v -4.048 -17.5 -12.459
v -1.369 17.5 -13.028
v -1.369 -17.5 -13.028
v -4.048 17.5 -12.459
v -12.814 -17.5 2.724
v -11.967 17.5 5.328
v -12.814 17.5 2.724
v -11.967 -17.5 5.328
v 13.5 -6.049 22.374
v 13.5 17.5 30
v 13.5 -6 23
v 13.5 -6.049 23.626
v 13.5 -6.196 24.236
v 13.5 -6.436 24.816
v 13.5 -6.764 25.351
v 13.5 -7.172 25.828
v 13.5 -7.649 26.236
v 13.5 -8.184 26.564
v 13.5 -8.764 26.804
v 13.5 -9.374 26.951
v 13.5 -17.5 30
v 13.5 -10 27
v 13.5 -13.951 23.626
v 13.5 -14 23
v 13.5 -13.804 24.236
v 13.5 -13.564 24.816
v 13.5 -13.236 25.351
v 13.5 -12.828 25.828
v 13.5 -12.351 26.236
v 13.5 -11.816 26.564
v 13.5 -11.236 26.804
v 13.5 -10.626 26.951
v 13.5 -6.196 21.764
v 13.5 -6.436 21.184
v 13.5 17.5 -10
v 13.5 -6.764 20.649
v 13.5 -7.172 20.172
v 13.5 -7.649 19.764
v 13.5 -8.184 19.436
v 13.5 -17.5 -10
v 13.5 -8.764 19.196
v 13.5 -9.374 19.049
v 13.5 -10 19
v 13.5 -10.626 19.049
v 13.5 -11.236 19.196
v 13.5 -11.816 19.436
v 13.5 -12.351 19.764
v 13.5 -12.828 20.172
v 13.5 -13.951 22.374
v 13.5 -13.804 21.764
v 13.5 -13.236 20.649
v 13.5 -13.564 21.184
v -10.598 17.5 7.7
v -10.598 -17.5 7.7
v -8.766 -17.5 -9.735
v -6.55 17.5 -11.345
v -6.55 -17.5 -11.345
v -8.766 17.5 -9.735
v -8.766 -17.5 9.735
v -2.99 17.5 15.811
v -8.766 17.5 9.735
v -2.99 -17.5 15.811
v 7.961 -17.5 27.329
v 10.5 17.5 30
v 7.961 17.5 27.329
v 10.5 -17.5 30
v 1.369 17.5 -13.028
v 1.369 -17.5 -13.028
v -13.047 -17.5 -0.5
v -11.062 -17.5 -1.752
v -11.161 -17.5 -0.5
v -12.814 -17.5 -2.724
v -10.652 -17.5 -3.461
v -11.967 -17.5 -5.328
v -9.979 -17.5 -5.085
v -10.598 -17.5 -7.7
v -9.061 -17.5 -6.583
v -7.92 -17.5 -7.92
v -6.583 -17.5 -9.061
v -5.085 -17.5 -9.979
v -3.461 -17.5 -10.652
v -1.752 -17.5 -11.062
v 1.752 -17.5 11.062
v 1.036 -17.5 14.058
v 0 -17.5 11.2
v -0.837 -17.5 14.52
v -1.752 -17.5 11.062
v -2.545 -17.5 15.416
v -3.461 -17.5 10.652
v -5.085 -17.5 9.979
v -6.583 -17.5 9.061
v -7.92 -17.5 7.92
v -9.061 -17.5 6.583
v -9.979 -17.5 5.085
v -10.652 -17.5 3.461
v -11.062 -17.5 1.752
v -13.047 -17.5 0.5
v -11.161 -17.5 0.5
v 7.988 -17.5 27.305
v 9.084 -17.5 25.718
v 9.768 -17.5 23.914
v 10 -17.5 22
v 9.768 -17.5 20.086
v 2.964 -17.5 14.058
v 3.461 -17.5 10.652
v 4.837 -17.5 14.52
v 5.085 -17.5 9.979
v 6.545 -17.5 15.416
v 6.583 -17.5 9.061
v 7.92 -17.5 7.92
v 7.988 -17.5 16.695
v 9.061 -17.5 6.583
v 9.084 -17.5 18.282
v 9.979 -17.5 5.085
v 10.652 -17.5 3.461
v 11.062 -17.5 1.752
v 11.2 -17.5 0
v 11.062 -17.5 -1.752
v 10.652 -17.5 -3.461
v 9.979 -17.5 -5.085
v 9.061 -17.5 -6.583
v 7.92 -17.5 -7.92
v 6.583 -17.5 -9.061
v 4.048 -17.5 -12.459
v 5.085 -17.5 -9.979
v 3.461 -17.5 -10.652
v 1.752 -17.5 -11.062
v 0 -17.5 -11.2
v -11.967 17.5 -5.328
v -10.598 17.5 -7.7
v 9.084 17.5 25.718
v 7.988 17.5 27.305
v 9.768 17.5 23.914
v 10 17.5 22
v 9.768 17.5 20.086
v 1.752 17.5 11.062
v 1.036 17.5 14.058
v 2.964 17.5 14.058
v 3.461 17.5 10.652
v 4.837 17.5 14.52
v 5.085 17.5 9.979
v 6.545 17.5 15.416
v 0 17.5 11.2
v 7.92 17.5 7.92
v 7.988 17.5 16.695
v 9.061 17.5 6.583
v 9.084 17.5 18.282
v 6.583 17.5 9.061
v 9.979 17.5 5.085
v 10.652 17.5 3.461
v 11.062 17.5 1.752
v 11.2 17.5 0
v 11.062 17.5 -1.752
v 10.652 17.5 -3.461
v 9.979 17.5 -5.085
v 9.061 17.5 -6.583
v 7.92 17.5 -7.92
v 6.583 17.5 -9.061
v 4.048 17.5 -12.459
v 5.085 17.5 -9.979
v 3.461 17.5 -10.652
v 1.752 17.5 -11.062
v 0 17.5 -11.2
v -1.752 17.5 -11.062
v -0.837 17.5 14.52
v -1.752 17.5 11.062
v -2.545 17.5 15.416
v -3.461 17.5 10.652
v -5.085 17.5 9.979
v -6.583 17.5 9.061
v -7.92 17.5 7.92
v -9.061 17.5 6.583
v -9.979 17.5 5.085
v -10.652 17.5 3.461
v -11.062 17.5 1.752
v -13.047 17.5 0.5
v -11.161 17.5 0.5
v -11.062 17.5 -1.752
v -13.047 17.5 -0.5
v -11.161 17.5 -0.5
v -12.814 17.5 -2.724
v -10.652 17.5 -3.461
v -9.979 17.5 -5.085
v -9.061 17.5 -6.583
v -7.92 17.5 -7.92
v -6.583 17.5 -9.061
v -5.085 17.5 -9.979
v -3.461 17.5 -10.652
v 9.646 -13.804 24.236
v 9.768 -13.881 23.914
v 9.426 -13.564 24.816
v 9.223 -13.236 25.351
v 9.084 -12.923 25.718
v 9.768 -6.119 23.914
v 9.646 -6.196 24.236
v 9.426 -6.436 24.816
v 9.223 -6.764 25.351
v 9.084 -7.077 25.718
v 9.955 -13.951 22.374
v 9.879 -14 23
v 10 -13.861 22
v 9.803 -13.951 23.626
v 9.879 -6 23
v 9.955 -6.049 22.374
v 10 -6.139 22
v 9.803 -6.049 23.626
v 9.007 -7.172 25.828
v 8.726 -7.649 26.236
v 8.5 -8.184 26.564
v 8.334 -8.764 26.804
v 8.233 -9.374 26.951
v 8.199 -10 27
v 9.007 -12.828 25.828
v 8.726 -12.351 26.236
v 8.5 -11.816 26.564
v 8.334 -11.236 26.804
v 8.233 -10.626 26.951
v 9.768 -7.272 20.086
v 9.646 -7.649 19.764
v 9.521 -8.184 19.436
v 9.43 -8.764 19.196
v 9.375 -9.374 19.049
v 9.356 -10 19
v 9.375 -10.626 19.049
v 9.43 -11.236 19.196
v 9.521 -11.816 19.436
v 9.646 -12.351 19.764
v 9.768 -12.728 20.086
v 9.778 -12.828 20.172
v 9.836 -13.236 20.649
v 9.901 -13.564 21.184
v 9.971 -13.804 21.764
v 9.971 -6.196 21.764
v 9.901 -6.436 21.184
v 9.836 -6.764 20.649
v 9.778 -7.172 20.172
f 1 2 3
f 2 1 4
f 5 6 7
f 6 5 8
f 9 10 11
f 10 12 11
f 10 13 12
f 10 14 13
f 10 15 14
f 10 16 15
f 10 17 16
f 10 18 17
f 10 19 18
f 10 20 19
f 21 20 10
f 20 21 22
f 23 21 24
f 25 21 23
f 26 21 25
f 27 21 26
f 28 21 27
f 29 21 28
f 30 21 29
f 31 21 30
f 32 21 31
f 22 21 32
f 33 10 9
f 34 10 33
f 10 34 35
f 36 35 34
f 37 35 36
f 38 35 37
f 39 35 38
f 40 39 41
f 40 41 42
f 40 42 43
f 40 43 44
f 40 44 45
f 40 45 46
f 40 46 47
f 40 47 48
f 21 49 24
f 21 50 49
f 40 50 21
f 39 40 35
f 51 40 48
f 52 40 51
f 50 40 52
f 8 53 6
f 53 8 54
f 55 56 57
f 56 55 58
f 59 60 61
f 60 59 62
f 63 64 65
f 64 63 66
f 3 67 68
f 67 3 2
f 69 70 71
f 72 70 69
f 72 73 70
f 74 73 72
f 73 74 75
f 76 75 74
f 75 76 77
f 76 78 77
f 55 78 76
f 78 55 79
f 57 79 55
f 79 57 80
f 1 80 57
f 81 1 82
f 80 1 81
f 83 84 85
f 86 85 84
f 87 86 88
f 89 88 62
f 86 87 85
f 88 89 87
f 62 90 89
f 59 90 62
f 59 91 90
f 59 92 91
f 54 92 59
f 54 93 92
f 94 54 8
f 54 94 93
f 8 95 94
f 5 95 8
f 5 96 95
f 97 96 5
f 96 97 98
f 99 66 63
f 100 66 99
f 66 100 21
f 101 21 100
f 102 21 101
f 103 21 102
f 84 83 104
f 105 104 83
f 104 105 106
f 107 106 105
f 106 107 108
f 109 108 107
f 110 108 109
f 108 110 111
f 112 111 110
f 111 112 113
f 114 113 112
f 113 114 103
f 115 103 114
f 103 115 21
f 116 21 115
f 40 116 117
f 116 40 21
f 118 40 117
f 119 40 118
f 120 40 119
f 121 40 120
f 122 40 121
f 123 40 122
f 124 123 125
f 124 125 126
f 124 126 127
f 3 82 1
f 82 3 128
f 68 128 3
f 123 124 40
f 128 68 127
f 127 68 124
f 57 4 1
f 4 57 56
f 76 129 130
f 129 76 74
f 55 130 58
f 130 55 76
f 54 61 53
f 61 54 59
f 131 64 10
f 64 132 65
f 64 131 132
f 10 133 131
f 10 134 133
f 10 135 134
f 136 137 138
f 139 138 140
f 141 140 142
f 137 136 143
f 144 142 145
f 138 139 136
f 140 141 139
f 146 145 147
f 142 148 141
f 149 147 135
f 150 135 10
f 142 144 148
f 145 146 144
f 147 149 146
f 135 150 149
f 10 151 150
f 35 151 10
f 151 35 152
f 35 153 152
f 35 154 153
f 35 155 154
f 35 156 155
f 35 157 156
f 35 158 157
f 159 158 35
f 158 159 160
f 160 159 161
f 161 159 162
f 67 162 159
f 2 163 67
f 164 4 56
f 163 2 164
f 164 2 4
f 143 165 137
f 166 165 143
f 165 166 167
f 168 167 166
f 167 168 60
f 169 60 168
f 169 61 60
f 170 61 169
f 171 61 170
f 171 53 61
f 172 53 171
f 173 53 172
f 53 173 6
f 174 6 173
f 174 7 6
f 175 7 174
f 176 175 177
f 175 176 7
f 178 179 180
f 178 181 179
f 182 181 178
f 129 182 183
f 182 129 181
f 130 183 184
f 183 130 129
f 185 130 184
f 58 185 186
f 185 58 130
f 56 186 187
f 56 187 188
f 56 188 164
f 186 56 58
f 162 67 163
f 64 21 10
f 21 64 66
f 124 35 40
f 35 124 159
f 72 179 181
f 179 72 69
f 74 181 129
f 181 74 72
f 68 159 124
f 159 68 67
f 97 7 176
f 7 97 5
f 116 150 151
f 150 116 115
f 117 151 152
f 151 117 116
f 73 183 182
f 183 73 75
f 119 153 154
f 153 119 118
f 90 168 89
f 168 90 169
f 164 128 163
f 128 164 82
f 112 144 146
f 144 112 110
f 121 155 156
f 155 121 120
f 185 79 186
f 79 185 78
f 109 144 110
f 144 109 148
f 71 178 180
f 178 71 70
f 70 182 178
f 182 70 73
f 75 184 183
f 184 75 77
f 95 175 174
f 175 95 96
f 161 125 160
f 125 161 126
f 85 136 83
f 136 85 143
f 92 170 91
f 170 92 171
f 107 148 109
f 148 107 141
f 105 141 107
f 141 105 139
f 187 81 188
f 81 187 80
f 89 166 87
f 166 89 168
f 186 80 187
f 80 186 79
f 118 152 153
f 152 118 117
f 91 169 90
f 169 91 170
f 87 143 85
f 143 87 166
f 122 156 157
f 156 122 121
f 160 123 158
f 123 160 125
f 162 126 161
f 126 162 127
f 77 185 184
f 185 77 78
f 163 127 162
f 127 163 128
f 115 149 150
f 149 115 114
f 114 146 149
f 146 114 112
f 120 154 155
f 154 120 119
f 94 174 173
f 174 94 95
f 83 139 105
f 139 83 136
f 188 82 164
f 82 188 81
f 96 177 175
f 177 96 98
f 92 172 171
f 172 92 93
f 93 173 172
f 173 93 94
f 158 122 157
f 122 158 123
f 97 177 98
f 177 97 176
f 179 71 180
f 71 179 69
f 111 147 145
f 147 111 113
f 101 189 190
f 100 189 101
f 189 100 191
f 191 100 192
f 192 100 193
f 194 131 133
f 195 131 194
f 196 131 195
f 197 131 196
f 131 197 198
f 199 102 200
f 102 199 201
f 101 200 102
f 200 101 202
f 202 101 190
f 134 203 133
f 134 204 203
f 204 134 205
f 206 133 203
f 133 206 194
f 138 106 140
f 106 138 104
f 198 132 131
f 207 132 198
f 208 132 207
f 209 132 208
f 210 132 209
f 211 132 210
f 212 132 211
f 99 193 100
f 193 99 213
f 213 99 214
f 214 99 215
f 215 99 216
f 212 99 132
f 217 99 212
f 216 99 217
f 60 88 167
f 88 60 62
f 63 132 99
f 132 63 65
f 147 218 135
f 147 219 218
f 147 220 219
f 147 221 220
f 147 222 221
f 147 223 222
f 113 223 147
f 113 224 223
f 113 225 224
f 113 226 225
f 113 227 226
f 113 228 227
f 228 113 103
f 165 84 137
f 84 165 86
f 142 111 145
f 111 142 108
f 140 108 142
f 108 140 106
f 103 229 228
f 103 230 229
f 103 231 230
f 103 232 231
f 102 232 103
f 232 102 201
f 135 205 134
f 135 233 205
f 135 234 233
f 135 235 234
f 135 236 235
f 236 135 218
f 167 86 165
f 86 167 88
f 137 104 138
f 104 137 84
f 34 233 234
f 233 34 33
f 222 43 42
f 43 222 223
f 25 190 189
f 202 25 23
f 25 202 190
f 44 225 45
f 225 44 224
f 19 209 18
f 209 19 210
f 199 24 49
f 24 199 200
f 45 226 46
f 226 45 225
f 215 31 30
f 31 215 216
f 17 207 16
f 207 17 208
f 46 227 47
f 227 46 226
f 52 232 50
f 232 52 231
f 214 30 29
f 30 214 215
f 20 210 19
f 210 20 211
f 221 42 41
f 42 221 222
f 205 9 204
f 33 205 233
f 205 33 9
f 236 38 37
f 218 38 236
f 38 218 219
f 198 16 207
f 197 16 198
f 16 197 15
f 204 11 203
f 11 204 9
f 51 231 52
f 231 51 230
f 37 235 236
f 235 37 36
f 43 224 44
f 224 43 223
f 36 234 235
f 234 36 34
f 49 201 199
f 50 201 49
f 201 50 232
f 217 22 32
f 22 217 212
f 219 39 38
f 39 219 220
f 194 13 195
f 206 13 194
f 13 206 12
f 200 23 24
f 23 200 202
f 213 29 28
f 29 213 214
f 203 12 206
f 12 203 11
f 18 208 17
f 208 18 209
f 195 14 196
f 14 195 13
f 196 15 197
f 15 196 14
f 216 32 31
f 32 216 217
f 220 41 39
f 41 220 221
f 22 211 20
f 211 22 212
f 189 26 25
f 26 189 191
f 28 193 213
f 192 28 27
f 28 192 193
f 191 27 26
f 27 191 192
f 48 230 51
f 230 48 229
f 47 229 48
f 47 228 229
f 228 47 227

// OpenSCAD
pipe_r = 22.2/2;

difference(){
    difference() {
        rotate([0,0,0]) pipe();
        translate([-10,0,0]) cube([10,35+2,1], center=true);
        translate([2,0,22]) rotate([90,0,0]) cylinder(h=37,r=8,center=true);
        #translate([0,0-10,23]) rotate([0,90,0]) cylinder(h=60, r=4, center=true, $fn=40);
    }
}

module pipe() {
    //translate([0,35/2+4,0])
    difference(){
        hull(){
            translate([0,0,0]) rotate([90,0,0]) cylinder(h=35,r=pipe_r+2,center=true);
            translate([12,0,10]) cube([3,35,40], center=true);
        }
        translate([0,0-3,0]) rotate([90,0,0]) cylinder(h=60, r=pipe_r+0.1, center=true, $fn=40);
    }
}
